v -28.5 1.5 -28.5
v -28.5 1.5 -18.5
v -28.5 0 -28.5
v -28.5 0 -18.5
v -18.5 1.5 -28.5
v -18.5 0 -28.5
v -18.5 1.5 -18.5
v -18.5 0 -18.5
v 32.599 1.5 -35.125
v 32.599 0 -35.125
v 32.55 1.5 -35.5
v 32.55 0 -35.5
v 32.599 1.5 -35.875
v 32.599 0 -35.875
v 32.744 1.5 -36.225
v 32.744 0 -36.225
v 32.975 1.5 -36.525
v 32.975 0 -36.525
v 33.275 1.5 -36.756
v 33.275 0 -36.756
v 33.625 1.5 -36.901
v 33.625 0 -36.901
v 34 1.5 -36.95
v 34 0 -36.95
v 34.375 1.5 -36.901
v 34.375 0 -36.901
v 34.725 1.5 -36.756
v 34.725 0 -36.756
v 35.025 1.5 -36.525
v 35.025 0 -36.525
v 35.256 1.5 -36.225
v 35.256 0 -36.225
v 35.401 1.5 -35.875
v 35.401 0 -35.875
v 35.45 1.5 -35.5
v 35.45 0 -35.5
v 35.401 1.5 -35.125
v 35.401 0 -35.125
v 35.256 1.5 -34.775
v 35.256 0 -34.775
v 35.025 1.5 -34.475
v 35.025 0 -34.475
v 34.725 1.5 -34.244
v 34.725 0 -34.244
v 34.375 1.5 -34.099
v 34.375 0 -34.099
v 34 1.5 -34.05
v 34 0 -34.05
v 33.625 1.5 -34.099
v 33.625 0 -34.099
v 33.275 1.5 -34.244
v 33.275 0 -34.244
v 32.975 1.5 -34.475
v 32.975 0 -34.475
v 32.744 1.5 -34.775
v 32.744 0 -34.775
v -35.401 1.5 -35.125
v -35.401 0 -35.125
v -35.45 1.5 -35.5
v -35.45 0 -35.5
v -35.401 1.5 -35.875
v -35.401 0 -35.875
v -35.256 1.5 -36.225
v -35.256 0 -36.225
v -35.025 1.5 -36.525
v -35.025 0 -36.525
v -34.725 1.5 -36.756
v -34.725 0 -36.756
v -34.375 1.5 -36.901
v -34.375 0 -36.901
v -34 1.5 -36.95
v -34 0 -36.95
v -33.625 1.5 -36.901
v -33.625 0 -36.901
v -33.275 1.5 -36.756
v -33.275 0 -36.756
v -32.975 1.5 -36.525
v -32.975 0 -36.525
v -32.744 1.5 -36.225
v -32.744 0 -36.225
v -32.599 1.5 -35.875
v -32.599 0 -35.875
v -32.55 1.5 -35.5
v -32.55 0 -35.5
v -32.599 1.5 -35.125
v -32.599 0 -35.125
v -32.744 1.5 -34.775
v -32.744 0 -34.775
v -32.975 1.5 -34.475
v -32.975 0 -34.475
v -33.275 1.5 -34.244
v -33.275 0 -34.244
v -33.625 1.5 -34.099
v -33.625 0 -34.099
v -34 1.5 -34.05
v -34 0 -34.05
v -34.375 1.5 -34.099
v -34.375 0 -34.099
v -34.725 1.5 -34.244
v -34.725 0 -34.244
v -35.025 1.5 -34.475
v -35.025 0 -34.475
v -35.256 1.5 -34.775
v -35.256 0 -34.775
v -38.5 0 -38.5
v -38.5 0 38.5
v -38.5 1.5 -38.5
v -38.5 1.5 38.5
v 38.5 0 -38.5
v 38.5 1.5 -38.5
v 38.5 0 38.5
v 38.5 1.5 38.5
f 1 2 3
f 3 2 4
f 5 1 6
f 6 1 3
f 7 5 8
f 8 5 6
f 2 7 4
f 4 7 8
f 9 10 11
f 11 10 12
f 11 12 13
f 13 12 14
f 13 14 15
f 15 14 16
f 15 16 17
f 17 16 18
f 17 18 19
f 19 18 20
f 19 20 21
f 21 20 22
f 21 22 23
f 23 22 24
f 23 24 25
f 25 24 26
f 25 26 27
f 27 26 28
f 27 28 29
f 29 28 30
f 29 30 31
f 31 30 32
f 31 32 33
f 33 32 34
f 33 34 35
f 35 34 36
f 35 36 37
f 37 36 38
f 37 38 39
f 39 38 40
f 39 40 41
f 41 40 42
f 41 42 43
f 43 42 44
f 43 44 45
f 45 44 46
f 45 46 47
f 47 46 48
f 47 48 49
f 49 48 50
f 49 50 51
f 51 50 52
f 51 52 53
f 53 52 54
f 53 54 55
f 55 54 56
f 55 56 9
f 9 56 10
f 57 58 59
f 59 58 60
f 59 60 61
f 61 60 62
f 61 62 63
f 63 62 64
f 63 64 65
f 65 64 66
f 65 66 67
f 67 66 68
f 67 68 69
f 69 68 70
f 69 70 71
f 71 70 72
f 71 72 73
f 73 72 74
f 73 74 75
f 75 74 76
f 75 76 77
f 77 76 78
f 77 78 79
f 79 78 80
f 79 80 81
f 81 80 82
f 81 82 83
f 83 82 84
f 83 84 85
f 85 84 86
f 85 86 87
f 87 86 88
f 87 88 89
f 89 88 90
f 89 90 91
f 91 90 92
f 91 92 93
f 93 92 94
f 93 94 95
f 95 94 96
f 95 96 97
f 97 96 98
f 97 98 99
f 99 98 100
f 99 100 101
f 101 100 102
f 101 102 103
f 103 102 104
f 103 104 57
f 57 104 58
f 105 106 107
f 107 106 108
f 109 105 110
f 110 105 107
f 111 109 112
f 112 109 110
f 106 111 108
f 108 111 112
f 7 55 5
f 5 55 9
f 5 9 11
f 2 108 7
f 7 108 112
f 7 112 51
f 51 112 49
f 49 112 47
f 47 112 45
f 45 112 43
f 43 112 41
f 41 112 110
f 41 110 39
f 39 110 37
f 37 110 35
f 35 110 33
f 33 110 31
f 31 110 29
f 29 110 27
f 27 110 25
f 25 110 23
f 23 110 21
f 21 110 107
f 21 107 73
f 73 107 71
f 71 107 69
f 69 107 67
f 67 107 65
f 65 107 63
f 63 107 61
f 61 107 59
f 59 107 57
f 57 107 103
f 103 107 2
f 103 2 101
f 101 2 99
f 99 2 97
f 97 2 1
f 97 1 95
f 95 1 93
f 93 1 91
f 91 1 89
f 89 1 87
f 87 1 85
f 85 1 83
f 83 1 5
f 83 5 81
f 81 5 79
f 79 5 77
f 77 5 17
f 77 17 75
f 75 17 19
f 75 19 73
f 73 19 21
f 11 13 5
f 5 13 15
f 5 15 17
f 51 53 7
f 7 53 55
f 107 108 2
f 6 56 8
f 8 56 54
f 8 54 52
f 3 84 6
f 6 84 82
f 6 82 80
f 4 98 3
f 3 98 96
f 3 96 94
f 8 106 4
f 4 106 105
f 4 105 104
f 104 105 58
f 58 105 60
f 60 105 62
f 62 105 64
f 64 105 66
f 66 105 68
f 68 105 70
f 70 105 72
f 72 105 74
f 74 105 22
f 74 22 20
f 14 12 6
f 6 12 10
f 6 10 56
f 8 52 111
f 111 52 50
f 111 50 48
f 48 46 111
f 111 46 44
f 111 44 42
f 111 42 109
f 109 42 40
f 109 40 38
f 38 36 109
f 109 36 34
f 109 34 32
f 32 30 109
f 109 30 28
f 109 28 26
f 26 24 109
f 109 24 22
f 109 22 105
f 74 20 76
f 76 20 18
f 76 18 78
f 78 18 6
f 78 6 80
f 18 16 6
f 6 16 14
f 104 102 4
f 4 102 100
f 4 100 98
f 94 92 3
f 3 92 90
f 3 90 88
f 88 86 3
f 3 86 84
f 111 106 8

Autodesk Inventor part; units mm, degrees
ref_plane "YZ Plane" through (0, 0, 0) normal (1, 0, 0) x (0, 1, 0)
ref_plane "XZ Plane" through (0, 0, 0) normal (0, 1, 0) x (-1, 0, 0)
ref_plane "XY Plane" through (0, 0, 0) normal (0, 0, 1) x (1, 0, 0)
sketch "Sketch1" plane through (0, 0, 0) normal (0, 1, 0) x (-1, 0, 0)
  line L0 (38.5, 38.5) -> (-38.5, 38.5)
  line L1 (-38.5, 38.5) -> (-38.5, -38.5)
  line L2 (-38.5, -38.5) -> (38.5, -38.5)
  line L3 (38.5, -38.5) -> (38.5, 38.5)
  line L4 (38.5, 38.5) -> (-38.5, -38.5) construction
  line L5 (-38.5, 38.5) -> (38.5, -38.5) construction
  point P0 (0, 0)
  dimension "d0" = 77
  dimension "d1" = 77
extrude "Extrusion1" add sketch "Sketch1" along normal blind 1.5
sketch "Sketch2" plane through (0, 0, 0) normal (0, 1, 0) x (-1, 0, 0)
  circle A0 centre (-34, -35.5) radius 1.45
  line L0 (-34, -35.5) -> (-38.5, -35.5) construction
  line L1 (-38.5, 38.5) -> (-38.5, -38.5) construction
  line L2 (-34, -35.5) -> (-34, -38.5) construction
  line L3 (-38.5, -38.5) -> (38.5, -38.5) construction
  line L4 (0, 0) -> (0, -38.5) construction
  line L5 (-38.5, -38.5) -> (38.5, -38.5) construction
  circle A1 centre (34, -35.5) radius 1.45
  line L6 (34, -35.5) -> (38.5, -35.5) construction
  line L7 (34, -35.5) -> (34, -38.5) construction
  dimension "d4" = 2.9
  dimension "d5" = 4.5
  dimension "d6" = 3
extrude "Extrusion2" cut sketch "Sketch2" along normal blind 1.5
sketch "Sketch3" plane through (0, 0, 0) normal (0, 1, 0) x (-1, 0, 0)
  line L0 (18.5, -28.5) -> (28.5, -28.5)
  line L1 (28.5, -28.5) -> (28.5, -18.5)
  line L2 (28.5, -18.5) -> (18.5, -18.5)
  line L3 (18.5, -18.5) -> (18.5, -28.5)
  line L4 (-38.5, -38.5) -> (38.5, -38.5) projected
  line L5 (38.5, -38.5) -> (38.5, 38.5) projected
  point P0 (0, 0)
  dimension "d9" = 10
  dimension "d10" = 10
  dimension "d11" = 10
  dimension "d12" = 10
extrude "Extrusion3" cut sketch "Sketch3" along normal blind 10
properties part number "teensy_box_lid"
